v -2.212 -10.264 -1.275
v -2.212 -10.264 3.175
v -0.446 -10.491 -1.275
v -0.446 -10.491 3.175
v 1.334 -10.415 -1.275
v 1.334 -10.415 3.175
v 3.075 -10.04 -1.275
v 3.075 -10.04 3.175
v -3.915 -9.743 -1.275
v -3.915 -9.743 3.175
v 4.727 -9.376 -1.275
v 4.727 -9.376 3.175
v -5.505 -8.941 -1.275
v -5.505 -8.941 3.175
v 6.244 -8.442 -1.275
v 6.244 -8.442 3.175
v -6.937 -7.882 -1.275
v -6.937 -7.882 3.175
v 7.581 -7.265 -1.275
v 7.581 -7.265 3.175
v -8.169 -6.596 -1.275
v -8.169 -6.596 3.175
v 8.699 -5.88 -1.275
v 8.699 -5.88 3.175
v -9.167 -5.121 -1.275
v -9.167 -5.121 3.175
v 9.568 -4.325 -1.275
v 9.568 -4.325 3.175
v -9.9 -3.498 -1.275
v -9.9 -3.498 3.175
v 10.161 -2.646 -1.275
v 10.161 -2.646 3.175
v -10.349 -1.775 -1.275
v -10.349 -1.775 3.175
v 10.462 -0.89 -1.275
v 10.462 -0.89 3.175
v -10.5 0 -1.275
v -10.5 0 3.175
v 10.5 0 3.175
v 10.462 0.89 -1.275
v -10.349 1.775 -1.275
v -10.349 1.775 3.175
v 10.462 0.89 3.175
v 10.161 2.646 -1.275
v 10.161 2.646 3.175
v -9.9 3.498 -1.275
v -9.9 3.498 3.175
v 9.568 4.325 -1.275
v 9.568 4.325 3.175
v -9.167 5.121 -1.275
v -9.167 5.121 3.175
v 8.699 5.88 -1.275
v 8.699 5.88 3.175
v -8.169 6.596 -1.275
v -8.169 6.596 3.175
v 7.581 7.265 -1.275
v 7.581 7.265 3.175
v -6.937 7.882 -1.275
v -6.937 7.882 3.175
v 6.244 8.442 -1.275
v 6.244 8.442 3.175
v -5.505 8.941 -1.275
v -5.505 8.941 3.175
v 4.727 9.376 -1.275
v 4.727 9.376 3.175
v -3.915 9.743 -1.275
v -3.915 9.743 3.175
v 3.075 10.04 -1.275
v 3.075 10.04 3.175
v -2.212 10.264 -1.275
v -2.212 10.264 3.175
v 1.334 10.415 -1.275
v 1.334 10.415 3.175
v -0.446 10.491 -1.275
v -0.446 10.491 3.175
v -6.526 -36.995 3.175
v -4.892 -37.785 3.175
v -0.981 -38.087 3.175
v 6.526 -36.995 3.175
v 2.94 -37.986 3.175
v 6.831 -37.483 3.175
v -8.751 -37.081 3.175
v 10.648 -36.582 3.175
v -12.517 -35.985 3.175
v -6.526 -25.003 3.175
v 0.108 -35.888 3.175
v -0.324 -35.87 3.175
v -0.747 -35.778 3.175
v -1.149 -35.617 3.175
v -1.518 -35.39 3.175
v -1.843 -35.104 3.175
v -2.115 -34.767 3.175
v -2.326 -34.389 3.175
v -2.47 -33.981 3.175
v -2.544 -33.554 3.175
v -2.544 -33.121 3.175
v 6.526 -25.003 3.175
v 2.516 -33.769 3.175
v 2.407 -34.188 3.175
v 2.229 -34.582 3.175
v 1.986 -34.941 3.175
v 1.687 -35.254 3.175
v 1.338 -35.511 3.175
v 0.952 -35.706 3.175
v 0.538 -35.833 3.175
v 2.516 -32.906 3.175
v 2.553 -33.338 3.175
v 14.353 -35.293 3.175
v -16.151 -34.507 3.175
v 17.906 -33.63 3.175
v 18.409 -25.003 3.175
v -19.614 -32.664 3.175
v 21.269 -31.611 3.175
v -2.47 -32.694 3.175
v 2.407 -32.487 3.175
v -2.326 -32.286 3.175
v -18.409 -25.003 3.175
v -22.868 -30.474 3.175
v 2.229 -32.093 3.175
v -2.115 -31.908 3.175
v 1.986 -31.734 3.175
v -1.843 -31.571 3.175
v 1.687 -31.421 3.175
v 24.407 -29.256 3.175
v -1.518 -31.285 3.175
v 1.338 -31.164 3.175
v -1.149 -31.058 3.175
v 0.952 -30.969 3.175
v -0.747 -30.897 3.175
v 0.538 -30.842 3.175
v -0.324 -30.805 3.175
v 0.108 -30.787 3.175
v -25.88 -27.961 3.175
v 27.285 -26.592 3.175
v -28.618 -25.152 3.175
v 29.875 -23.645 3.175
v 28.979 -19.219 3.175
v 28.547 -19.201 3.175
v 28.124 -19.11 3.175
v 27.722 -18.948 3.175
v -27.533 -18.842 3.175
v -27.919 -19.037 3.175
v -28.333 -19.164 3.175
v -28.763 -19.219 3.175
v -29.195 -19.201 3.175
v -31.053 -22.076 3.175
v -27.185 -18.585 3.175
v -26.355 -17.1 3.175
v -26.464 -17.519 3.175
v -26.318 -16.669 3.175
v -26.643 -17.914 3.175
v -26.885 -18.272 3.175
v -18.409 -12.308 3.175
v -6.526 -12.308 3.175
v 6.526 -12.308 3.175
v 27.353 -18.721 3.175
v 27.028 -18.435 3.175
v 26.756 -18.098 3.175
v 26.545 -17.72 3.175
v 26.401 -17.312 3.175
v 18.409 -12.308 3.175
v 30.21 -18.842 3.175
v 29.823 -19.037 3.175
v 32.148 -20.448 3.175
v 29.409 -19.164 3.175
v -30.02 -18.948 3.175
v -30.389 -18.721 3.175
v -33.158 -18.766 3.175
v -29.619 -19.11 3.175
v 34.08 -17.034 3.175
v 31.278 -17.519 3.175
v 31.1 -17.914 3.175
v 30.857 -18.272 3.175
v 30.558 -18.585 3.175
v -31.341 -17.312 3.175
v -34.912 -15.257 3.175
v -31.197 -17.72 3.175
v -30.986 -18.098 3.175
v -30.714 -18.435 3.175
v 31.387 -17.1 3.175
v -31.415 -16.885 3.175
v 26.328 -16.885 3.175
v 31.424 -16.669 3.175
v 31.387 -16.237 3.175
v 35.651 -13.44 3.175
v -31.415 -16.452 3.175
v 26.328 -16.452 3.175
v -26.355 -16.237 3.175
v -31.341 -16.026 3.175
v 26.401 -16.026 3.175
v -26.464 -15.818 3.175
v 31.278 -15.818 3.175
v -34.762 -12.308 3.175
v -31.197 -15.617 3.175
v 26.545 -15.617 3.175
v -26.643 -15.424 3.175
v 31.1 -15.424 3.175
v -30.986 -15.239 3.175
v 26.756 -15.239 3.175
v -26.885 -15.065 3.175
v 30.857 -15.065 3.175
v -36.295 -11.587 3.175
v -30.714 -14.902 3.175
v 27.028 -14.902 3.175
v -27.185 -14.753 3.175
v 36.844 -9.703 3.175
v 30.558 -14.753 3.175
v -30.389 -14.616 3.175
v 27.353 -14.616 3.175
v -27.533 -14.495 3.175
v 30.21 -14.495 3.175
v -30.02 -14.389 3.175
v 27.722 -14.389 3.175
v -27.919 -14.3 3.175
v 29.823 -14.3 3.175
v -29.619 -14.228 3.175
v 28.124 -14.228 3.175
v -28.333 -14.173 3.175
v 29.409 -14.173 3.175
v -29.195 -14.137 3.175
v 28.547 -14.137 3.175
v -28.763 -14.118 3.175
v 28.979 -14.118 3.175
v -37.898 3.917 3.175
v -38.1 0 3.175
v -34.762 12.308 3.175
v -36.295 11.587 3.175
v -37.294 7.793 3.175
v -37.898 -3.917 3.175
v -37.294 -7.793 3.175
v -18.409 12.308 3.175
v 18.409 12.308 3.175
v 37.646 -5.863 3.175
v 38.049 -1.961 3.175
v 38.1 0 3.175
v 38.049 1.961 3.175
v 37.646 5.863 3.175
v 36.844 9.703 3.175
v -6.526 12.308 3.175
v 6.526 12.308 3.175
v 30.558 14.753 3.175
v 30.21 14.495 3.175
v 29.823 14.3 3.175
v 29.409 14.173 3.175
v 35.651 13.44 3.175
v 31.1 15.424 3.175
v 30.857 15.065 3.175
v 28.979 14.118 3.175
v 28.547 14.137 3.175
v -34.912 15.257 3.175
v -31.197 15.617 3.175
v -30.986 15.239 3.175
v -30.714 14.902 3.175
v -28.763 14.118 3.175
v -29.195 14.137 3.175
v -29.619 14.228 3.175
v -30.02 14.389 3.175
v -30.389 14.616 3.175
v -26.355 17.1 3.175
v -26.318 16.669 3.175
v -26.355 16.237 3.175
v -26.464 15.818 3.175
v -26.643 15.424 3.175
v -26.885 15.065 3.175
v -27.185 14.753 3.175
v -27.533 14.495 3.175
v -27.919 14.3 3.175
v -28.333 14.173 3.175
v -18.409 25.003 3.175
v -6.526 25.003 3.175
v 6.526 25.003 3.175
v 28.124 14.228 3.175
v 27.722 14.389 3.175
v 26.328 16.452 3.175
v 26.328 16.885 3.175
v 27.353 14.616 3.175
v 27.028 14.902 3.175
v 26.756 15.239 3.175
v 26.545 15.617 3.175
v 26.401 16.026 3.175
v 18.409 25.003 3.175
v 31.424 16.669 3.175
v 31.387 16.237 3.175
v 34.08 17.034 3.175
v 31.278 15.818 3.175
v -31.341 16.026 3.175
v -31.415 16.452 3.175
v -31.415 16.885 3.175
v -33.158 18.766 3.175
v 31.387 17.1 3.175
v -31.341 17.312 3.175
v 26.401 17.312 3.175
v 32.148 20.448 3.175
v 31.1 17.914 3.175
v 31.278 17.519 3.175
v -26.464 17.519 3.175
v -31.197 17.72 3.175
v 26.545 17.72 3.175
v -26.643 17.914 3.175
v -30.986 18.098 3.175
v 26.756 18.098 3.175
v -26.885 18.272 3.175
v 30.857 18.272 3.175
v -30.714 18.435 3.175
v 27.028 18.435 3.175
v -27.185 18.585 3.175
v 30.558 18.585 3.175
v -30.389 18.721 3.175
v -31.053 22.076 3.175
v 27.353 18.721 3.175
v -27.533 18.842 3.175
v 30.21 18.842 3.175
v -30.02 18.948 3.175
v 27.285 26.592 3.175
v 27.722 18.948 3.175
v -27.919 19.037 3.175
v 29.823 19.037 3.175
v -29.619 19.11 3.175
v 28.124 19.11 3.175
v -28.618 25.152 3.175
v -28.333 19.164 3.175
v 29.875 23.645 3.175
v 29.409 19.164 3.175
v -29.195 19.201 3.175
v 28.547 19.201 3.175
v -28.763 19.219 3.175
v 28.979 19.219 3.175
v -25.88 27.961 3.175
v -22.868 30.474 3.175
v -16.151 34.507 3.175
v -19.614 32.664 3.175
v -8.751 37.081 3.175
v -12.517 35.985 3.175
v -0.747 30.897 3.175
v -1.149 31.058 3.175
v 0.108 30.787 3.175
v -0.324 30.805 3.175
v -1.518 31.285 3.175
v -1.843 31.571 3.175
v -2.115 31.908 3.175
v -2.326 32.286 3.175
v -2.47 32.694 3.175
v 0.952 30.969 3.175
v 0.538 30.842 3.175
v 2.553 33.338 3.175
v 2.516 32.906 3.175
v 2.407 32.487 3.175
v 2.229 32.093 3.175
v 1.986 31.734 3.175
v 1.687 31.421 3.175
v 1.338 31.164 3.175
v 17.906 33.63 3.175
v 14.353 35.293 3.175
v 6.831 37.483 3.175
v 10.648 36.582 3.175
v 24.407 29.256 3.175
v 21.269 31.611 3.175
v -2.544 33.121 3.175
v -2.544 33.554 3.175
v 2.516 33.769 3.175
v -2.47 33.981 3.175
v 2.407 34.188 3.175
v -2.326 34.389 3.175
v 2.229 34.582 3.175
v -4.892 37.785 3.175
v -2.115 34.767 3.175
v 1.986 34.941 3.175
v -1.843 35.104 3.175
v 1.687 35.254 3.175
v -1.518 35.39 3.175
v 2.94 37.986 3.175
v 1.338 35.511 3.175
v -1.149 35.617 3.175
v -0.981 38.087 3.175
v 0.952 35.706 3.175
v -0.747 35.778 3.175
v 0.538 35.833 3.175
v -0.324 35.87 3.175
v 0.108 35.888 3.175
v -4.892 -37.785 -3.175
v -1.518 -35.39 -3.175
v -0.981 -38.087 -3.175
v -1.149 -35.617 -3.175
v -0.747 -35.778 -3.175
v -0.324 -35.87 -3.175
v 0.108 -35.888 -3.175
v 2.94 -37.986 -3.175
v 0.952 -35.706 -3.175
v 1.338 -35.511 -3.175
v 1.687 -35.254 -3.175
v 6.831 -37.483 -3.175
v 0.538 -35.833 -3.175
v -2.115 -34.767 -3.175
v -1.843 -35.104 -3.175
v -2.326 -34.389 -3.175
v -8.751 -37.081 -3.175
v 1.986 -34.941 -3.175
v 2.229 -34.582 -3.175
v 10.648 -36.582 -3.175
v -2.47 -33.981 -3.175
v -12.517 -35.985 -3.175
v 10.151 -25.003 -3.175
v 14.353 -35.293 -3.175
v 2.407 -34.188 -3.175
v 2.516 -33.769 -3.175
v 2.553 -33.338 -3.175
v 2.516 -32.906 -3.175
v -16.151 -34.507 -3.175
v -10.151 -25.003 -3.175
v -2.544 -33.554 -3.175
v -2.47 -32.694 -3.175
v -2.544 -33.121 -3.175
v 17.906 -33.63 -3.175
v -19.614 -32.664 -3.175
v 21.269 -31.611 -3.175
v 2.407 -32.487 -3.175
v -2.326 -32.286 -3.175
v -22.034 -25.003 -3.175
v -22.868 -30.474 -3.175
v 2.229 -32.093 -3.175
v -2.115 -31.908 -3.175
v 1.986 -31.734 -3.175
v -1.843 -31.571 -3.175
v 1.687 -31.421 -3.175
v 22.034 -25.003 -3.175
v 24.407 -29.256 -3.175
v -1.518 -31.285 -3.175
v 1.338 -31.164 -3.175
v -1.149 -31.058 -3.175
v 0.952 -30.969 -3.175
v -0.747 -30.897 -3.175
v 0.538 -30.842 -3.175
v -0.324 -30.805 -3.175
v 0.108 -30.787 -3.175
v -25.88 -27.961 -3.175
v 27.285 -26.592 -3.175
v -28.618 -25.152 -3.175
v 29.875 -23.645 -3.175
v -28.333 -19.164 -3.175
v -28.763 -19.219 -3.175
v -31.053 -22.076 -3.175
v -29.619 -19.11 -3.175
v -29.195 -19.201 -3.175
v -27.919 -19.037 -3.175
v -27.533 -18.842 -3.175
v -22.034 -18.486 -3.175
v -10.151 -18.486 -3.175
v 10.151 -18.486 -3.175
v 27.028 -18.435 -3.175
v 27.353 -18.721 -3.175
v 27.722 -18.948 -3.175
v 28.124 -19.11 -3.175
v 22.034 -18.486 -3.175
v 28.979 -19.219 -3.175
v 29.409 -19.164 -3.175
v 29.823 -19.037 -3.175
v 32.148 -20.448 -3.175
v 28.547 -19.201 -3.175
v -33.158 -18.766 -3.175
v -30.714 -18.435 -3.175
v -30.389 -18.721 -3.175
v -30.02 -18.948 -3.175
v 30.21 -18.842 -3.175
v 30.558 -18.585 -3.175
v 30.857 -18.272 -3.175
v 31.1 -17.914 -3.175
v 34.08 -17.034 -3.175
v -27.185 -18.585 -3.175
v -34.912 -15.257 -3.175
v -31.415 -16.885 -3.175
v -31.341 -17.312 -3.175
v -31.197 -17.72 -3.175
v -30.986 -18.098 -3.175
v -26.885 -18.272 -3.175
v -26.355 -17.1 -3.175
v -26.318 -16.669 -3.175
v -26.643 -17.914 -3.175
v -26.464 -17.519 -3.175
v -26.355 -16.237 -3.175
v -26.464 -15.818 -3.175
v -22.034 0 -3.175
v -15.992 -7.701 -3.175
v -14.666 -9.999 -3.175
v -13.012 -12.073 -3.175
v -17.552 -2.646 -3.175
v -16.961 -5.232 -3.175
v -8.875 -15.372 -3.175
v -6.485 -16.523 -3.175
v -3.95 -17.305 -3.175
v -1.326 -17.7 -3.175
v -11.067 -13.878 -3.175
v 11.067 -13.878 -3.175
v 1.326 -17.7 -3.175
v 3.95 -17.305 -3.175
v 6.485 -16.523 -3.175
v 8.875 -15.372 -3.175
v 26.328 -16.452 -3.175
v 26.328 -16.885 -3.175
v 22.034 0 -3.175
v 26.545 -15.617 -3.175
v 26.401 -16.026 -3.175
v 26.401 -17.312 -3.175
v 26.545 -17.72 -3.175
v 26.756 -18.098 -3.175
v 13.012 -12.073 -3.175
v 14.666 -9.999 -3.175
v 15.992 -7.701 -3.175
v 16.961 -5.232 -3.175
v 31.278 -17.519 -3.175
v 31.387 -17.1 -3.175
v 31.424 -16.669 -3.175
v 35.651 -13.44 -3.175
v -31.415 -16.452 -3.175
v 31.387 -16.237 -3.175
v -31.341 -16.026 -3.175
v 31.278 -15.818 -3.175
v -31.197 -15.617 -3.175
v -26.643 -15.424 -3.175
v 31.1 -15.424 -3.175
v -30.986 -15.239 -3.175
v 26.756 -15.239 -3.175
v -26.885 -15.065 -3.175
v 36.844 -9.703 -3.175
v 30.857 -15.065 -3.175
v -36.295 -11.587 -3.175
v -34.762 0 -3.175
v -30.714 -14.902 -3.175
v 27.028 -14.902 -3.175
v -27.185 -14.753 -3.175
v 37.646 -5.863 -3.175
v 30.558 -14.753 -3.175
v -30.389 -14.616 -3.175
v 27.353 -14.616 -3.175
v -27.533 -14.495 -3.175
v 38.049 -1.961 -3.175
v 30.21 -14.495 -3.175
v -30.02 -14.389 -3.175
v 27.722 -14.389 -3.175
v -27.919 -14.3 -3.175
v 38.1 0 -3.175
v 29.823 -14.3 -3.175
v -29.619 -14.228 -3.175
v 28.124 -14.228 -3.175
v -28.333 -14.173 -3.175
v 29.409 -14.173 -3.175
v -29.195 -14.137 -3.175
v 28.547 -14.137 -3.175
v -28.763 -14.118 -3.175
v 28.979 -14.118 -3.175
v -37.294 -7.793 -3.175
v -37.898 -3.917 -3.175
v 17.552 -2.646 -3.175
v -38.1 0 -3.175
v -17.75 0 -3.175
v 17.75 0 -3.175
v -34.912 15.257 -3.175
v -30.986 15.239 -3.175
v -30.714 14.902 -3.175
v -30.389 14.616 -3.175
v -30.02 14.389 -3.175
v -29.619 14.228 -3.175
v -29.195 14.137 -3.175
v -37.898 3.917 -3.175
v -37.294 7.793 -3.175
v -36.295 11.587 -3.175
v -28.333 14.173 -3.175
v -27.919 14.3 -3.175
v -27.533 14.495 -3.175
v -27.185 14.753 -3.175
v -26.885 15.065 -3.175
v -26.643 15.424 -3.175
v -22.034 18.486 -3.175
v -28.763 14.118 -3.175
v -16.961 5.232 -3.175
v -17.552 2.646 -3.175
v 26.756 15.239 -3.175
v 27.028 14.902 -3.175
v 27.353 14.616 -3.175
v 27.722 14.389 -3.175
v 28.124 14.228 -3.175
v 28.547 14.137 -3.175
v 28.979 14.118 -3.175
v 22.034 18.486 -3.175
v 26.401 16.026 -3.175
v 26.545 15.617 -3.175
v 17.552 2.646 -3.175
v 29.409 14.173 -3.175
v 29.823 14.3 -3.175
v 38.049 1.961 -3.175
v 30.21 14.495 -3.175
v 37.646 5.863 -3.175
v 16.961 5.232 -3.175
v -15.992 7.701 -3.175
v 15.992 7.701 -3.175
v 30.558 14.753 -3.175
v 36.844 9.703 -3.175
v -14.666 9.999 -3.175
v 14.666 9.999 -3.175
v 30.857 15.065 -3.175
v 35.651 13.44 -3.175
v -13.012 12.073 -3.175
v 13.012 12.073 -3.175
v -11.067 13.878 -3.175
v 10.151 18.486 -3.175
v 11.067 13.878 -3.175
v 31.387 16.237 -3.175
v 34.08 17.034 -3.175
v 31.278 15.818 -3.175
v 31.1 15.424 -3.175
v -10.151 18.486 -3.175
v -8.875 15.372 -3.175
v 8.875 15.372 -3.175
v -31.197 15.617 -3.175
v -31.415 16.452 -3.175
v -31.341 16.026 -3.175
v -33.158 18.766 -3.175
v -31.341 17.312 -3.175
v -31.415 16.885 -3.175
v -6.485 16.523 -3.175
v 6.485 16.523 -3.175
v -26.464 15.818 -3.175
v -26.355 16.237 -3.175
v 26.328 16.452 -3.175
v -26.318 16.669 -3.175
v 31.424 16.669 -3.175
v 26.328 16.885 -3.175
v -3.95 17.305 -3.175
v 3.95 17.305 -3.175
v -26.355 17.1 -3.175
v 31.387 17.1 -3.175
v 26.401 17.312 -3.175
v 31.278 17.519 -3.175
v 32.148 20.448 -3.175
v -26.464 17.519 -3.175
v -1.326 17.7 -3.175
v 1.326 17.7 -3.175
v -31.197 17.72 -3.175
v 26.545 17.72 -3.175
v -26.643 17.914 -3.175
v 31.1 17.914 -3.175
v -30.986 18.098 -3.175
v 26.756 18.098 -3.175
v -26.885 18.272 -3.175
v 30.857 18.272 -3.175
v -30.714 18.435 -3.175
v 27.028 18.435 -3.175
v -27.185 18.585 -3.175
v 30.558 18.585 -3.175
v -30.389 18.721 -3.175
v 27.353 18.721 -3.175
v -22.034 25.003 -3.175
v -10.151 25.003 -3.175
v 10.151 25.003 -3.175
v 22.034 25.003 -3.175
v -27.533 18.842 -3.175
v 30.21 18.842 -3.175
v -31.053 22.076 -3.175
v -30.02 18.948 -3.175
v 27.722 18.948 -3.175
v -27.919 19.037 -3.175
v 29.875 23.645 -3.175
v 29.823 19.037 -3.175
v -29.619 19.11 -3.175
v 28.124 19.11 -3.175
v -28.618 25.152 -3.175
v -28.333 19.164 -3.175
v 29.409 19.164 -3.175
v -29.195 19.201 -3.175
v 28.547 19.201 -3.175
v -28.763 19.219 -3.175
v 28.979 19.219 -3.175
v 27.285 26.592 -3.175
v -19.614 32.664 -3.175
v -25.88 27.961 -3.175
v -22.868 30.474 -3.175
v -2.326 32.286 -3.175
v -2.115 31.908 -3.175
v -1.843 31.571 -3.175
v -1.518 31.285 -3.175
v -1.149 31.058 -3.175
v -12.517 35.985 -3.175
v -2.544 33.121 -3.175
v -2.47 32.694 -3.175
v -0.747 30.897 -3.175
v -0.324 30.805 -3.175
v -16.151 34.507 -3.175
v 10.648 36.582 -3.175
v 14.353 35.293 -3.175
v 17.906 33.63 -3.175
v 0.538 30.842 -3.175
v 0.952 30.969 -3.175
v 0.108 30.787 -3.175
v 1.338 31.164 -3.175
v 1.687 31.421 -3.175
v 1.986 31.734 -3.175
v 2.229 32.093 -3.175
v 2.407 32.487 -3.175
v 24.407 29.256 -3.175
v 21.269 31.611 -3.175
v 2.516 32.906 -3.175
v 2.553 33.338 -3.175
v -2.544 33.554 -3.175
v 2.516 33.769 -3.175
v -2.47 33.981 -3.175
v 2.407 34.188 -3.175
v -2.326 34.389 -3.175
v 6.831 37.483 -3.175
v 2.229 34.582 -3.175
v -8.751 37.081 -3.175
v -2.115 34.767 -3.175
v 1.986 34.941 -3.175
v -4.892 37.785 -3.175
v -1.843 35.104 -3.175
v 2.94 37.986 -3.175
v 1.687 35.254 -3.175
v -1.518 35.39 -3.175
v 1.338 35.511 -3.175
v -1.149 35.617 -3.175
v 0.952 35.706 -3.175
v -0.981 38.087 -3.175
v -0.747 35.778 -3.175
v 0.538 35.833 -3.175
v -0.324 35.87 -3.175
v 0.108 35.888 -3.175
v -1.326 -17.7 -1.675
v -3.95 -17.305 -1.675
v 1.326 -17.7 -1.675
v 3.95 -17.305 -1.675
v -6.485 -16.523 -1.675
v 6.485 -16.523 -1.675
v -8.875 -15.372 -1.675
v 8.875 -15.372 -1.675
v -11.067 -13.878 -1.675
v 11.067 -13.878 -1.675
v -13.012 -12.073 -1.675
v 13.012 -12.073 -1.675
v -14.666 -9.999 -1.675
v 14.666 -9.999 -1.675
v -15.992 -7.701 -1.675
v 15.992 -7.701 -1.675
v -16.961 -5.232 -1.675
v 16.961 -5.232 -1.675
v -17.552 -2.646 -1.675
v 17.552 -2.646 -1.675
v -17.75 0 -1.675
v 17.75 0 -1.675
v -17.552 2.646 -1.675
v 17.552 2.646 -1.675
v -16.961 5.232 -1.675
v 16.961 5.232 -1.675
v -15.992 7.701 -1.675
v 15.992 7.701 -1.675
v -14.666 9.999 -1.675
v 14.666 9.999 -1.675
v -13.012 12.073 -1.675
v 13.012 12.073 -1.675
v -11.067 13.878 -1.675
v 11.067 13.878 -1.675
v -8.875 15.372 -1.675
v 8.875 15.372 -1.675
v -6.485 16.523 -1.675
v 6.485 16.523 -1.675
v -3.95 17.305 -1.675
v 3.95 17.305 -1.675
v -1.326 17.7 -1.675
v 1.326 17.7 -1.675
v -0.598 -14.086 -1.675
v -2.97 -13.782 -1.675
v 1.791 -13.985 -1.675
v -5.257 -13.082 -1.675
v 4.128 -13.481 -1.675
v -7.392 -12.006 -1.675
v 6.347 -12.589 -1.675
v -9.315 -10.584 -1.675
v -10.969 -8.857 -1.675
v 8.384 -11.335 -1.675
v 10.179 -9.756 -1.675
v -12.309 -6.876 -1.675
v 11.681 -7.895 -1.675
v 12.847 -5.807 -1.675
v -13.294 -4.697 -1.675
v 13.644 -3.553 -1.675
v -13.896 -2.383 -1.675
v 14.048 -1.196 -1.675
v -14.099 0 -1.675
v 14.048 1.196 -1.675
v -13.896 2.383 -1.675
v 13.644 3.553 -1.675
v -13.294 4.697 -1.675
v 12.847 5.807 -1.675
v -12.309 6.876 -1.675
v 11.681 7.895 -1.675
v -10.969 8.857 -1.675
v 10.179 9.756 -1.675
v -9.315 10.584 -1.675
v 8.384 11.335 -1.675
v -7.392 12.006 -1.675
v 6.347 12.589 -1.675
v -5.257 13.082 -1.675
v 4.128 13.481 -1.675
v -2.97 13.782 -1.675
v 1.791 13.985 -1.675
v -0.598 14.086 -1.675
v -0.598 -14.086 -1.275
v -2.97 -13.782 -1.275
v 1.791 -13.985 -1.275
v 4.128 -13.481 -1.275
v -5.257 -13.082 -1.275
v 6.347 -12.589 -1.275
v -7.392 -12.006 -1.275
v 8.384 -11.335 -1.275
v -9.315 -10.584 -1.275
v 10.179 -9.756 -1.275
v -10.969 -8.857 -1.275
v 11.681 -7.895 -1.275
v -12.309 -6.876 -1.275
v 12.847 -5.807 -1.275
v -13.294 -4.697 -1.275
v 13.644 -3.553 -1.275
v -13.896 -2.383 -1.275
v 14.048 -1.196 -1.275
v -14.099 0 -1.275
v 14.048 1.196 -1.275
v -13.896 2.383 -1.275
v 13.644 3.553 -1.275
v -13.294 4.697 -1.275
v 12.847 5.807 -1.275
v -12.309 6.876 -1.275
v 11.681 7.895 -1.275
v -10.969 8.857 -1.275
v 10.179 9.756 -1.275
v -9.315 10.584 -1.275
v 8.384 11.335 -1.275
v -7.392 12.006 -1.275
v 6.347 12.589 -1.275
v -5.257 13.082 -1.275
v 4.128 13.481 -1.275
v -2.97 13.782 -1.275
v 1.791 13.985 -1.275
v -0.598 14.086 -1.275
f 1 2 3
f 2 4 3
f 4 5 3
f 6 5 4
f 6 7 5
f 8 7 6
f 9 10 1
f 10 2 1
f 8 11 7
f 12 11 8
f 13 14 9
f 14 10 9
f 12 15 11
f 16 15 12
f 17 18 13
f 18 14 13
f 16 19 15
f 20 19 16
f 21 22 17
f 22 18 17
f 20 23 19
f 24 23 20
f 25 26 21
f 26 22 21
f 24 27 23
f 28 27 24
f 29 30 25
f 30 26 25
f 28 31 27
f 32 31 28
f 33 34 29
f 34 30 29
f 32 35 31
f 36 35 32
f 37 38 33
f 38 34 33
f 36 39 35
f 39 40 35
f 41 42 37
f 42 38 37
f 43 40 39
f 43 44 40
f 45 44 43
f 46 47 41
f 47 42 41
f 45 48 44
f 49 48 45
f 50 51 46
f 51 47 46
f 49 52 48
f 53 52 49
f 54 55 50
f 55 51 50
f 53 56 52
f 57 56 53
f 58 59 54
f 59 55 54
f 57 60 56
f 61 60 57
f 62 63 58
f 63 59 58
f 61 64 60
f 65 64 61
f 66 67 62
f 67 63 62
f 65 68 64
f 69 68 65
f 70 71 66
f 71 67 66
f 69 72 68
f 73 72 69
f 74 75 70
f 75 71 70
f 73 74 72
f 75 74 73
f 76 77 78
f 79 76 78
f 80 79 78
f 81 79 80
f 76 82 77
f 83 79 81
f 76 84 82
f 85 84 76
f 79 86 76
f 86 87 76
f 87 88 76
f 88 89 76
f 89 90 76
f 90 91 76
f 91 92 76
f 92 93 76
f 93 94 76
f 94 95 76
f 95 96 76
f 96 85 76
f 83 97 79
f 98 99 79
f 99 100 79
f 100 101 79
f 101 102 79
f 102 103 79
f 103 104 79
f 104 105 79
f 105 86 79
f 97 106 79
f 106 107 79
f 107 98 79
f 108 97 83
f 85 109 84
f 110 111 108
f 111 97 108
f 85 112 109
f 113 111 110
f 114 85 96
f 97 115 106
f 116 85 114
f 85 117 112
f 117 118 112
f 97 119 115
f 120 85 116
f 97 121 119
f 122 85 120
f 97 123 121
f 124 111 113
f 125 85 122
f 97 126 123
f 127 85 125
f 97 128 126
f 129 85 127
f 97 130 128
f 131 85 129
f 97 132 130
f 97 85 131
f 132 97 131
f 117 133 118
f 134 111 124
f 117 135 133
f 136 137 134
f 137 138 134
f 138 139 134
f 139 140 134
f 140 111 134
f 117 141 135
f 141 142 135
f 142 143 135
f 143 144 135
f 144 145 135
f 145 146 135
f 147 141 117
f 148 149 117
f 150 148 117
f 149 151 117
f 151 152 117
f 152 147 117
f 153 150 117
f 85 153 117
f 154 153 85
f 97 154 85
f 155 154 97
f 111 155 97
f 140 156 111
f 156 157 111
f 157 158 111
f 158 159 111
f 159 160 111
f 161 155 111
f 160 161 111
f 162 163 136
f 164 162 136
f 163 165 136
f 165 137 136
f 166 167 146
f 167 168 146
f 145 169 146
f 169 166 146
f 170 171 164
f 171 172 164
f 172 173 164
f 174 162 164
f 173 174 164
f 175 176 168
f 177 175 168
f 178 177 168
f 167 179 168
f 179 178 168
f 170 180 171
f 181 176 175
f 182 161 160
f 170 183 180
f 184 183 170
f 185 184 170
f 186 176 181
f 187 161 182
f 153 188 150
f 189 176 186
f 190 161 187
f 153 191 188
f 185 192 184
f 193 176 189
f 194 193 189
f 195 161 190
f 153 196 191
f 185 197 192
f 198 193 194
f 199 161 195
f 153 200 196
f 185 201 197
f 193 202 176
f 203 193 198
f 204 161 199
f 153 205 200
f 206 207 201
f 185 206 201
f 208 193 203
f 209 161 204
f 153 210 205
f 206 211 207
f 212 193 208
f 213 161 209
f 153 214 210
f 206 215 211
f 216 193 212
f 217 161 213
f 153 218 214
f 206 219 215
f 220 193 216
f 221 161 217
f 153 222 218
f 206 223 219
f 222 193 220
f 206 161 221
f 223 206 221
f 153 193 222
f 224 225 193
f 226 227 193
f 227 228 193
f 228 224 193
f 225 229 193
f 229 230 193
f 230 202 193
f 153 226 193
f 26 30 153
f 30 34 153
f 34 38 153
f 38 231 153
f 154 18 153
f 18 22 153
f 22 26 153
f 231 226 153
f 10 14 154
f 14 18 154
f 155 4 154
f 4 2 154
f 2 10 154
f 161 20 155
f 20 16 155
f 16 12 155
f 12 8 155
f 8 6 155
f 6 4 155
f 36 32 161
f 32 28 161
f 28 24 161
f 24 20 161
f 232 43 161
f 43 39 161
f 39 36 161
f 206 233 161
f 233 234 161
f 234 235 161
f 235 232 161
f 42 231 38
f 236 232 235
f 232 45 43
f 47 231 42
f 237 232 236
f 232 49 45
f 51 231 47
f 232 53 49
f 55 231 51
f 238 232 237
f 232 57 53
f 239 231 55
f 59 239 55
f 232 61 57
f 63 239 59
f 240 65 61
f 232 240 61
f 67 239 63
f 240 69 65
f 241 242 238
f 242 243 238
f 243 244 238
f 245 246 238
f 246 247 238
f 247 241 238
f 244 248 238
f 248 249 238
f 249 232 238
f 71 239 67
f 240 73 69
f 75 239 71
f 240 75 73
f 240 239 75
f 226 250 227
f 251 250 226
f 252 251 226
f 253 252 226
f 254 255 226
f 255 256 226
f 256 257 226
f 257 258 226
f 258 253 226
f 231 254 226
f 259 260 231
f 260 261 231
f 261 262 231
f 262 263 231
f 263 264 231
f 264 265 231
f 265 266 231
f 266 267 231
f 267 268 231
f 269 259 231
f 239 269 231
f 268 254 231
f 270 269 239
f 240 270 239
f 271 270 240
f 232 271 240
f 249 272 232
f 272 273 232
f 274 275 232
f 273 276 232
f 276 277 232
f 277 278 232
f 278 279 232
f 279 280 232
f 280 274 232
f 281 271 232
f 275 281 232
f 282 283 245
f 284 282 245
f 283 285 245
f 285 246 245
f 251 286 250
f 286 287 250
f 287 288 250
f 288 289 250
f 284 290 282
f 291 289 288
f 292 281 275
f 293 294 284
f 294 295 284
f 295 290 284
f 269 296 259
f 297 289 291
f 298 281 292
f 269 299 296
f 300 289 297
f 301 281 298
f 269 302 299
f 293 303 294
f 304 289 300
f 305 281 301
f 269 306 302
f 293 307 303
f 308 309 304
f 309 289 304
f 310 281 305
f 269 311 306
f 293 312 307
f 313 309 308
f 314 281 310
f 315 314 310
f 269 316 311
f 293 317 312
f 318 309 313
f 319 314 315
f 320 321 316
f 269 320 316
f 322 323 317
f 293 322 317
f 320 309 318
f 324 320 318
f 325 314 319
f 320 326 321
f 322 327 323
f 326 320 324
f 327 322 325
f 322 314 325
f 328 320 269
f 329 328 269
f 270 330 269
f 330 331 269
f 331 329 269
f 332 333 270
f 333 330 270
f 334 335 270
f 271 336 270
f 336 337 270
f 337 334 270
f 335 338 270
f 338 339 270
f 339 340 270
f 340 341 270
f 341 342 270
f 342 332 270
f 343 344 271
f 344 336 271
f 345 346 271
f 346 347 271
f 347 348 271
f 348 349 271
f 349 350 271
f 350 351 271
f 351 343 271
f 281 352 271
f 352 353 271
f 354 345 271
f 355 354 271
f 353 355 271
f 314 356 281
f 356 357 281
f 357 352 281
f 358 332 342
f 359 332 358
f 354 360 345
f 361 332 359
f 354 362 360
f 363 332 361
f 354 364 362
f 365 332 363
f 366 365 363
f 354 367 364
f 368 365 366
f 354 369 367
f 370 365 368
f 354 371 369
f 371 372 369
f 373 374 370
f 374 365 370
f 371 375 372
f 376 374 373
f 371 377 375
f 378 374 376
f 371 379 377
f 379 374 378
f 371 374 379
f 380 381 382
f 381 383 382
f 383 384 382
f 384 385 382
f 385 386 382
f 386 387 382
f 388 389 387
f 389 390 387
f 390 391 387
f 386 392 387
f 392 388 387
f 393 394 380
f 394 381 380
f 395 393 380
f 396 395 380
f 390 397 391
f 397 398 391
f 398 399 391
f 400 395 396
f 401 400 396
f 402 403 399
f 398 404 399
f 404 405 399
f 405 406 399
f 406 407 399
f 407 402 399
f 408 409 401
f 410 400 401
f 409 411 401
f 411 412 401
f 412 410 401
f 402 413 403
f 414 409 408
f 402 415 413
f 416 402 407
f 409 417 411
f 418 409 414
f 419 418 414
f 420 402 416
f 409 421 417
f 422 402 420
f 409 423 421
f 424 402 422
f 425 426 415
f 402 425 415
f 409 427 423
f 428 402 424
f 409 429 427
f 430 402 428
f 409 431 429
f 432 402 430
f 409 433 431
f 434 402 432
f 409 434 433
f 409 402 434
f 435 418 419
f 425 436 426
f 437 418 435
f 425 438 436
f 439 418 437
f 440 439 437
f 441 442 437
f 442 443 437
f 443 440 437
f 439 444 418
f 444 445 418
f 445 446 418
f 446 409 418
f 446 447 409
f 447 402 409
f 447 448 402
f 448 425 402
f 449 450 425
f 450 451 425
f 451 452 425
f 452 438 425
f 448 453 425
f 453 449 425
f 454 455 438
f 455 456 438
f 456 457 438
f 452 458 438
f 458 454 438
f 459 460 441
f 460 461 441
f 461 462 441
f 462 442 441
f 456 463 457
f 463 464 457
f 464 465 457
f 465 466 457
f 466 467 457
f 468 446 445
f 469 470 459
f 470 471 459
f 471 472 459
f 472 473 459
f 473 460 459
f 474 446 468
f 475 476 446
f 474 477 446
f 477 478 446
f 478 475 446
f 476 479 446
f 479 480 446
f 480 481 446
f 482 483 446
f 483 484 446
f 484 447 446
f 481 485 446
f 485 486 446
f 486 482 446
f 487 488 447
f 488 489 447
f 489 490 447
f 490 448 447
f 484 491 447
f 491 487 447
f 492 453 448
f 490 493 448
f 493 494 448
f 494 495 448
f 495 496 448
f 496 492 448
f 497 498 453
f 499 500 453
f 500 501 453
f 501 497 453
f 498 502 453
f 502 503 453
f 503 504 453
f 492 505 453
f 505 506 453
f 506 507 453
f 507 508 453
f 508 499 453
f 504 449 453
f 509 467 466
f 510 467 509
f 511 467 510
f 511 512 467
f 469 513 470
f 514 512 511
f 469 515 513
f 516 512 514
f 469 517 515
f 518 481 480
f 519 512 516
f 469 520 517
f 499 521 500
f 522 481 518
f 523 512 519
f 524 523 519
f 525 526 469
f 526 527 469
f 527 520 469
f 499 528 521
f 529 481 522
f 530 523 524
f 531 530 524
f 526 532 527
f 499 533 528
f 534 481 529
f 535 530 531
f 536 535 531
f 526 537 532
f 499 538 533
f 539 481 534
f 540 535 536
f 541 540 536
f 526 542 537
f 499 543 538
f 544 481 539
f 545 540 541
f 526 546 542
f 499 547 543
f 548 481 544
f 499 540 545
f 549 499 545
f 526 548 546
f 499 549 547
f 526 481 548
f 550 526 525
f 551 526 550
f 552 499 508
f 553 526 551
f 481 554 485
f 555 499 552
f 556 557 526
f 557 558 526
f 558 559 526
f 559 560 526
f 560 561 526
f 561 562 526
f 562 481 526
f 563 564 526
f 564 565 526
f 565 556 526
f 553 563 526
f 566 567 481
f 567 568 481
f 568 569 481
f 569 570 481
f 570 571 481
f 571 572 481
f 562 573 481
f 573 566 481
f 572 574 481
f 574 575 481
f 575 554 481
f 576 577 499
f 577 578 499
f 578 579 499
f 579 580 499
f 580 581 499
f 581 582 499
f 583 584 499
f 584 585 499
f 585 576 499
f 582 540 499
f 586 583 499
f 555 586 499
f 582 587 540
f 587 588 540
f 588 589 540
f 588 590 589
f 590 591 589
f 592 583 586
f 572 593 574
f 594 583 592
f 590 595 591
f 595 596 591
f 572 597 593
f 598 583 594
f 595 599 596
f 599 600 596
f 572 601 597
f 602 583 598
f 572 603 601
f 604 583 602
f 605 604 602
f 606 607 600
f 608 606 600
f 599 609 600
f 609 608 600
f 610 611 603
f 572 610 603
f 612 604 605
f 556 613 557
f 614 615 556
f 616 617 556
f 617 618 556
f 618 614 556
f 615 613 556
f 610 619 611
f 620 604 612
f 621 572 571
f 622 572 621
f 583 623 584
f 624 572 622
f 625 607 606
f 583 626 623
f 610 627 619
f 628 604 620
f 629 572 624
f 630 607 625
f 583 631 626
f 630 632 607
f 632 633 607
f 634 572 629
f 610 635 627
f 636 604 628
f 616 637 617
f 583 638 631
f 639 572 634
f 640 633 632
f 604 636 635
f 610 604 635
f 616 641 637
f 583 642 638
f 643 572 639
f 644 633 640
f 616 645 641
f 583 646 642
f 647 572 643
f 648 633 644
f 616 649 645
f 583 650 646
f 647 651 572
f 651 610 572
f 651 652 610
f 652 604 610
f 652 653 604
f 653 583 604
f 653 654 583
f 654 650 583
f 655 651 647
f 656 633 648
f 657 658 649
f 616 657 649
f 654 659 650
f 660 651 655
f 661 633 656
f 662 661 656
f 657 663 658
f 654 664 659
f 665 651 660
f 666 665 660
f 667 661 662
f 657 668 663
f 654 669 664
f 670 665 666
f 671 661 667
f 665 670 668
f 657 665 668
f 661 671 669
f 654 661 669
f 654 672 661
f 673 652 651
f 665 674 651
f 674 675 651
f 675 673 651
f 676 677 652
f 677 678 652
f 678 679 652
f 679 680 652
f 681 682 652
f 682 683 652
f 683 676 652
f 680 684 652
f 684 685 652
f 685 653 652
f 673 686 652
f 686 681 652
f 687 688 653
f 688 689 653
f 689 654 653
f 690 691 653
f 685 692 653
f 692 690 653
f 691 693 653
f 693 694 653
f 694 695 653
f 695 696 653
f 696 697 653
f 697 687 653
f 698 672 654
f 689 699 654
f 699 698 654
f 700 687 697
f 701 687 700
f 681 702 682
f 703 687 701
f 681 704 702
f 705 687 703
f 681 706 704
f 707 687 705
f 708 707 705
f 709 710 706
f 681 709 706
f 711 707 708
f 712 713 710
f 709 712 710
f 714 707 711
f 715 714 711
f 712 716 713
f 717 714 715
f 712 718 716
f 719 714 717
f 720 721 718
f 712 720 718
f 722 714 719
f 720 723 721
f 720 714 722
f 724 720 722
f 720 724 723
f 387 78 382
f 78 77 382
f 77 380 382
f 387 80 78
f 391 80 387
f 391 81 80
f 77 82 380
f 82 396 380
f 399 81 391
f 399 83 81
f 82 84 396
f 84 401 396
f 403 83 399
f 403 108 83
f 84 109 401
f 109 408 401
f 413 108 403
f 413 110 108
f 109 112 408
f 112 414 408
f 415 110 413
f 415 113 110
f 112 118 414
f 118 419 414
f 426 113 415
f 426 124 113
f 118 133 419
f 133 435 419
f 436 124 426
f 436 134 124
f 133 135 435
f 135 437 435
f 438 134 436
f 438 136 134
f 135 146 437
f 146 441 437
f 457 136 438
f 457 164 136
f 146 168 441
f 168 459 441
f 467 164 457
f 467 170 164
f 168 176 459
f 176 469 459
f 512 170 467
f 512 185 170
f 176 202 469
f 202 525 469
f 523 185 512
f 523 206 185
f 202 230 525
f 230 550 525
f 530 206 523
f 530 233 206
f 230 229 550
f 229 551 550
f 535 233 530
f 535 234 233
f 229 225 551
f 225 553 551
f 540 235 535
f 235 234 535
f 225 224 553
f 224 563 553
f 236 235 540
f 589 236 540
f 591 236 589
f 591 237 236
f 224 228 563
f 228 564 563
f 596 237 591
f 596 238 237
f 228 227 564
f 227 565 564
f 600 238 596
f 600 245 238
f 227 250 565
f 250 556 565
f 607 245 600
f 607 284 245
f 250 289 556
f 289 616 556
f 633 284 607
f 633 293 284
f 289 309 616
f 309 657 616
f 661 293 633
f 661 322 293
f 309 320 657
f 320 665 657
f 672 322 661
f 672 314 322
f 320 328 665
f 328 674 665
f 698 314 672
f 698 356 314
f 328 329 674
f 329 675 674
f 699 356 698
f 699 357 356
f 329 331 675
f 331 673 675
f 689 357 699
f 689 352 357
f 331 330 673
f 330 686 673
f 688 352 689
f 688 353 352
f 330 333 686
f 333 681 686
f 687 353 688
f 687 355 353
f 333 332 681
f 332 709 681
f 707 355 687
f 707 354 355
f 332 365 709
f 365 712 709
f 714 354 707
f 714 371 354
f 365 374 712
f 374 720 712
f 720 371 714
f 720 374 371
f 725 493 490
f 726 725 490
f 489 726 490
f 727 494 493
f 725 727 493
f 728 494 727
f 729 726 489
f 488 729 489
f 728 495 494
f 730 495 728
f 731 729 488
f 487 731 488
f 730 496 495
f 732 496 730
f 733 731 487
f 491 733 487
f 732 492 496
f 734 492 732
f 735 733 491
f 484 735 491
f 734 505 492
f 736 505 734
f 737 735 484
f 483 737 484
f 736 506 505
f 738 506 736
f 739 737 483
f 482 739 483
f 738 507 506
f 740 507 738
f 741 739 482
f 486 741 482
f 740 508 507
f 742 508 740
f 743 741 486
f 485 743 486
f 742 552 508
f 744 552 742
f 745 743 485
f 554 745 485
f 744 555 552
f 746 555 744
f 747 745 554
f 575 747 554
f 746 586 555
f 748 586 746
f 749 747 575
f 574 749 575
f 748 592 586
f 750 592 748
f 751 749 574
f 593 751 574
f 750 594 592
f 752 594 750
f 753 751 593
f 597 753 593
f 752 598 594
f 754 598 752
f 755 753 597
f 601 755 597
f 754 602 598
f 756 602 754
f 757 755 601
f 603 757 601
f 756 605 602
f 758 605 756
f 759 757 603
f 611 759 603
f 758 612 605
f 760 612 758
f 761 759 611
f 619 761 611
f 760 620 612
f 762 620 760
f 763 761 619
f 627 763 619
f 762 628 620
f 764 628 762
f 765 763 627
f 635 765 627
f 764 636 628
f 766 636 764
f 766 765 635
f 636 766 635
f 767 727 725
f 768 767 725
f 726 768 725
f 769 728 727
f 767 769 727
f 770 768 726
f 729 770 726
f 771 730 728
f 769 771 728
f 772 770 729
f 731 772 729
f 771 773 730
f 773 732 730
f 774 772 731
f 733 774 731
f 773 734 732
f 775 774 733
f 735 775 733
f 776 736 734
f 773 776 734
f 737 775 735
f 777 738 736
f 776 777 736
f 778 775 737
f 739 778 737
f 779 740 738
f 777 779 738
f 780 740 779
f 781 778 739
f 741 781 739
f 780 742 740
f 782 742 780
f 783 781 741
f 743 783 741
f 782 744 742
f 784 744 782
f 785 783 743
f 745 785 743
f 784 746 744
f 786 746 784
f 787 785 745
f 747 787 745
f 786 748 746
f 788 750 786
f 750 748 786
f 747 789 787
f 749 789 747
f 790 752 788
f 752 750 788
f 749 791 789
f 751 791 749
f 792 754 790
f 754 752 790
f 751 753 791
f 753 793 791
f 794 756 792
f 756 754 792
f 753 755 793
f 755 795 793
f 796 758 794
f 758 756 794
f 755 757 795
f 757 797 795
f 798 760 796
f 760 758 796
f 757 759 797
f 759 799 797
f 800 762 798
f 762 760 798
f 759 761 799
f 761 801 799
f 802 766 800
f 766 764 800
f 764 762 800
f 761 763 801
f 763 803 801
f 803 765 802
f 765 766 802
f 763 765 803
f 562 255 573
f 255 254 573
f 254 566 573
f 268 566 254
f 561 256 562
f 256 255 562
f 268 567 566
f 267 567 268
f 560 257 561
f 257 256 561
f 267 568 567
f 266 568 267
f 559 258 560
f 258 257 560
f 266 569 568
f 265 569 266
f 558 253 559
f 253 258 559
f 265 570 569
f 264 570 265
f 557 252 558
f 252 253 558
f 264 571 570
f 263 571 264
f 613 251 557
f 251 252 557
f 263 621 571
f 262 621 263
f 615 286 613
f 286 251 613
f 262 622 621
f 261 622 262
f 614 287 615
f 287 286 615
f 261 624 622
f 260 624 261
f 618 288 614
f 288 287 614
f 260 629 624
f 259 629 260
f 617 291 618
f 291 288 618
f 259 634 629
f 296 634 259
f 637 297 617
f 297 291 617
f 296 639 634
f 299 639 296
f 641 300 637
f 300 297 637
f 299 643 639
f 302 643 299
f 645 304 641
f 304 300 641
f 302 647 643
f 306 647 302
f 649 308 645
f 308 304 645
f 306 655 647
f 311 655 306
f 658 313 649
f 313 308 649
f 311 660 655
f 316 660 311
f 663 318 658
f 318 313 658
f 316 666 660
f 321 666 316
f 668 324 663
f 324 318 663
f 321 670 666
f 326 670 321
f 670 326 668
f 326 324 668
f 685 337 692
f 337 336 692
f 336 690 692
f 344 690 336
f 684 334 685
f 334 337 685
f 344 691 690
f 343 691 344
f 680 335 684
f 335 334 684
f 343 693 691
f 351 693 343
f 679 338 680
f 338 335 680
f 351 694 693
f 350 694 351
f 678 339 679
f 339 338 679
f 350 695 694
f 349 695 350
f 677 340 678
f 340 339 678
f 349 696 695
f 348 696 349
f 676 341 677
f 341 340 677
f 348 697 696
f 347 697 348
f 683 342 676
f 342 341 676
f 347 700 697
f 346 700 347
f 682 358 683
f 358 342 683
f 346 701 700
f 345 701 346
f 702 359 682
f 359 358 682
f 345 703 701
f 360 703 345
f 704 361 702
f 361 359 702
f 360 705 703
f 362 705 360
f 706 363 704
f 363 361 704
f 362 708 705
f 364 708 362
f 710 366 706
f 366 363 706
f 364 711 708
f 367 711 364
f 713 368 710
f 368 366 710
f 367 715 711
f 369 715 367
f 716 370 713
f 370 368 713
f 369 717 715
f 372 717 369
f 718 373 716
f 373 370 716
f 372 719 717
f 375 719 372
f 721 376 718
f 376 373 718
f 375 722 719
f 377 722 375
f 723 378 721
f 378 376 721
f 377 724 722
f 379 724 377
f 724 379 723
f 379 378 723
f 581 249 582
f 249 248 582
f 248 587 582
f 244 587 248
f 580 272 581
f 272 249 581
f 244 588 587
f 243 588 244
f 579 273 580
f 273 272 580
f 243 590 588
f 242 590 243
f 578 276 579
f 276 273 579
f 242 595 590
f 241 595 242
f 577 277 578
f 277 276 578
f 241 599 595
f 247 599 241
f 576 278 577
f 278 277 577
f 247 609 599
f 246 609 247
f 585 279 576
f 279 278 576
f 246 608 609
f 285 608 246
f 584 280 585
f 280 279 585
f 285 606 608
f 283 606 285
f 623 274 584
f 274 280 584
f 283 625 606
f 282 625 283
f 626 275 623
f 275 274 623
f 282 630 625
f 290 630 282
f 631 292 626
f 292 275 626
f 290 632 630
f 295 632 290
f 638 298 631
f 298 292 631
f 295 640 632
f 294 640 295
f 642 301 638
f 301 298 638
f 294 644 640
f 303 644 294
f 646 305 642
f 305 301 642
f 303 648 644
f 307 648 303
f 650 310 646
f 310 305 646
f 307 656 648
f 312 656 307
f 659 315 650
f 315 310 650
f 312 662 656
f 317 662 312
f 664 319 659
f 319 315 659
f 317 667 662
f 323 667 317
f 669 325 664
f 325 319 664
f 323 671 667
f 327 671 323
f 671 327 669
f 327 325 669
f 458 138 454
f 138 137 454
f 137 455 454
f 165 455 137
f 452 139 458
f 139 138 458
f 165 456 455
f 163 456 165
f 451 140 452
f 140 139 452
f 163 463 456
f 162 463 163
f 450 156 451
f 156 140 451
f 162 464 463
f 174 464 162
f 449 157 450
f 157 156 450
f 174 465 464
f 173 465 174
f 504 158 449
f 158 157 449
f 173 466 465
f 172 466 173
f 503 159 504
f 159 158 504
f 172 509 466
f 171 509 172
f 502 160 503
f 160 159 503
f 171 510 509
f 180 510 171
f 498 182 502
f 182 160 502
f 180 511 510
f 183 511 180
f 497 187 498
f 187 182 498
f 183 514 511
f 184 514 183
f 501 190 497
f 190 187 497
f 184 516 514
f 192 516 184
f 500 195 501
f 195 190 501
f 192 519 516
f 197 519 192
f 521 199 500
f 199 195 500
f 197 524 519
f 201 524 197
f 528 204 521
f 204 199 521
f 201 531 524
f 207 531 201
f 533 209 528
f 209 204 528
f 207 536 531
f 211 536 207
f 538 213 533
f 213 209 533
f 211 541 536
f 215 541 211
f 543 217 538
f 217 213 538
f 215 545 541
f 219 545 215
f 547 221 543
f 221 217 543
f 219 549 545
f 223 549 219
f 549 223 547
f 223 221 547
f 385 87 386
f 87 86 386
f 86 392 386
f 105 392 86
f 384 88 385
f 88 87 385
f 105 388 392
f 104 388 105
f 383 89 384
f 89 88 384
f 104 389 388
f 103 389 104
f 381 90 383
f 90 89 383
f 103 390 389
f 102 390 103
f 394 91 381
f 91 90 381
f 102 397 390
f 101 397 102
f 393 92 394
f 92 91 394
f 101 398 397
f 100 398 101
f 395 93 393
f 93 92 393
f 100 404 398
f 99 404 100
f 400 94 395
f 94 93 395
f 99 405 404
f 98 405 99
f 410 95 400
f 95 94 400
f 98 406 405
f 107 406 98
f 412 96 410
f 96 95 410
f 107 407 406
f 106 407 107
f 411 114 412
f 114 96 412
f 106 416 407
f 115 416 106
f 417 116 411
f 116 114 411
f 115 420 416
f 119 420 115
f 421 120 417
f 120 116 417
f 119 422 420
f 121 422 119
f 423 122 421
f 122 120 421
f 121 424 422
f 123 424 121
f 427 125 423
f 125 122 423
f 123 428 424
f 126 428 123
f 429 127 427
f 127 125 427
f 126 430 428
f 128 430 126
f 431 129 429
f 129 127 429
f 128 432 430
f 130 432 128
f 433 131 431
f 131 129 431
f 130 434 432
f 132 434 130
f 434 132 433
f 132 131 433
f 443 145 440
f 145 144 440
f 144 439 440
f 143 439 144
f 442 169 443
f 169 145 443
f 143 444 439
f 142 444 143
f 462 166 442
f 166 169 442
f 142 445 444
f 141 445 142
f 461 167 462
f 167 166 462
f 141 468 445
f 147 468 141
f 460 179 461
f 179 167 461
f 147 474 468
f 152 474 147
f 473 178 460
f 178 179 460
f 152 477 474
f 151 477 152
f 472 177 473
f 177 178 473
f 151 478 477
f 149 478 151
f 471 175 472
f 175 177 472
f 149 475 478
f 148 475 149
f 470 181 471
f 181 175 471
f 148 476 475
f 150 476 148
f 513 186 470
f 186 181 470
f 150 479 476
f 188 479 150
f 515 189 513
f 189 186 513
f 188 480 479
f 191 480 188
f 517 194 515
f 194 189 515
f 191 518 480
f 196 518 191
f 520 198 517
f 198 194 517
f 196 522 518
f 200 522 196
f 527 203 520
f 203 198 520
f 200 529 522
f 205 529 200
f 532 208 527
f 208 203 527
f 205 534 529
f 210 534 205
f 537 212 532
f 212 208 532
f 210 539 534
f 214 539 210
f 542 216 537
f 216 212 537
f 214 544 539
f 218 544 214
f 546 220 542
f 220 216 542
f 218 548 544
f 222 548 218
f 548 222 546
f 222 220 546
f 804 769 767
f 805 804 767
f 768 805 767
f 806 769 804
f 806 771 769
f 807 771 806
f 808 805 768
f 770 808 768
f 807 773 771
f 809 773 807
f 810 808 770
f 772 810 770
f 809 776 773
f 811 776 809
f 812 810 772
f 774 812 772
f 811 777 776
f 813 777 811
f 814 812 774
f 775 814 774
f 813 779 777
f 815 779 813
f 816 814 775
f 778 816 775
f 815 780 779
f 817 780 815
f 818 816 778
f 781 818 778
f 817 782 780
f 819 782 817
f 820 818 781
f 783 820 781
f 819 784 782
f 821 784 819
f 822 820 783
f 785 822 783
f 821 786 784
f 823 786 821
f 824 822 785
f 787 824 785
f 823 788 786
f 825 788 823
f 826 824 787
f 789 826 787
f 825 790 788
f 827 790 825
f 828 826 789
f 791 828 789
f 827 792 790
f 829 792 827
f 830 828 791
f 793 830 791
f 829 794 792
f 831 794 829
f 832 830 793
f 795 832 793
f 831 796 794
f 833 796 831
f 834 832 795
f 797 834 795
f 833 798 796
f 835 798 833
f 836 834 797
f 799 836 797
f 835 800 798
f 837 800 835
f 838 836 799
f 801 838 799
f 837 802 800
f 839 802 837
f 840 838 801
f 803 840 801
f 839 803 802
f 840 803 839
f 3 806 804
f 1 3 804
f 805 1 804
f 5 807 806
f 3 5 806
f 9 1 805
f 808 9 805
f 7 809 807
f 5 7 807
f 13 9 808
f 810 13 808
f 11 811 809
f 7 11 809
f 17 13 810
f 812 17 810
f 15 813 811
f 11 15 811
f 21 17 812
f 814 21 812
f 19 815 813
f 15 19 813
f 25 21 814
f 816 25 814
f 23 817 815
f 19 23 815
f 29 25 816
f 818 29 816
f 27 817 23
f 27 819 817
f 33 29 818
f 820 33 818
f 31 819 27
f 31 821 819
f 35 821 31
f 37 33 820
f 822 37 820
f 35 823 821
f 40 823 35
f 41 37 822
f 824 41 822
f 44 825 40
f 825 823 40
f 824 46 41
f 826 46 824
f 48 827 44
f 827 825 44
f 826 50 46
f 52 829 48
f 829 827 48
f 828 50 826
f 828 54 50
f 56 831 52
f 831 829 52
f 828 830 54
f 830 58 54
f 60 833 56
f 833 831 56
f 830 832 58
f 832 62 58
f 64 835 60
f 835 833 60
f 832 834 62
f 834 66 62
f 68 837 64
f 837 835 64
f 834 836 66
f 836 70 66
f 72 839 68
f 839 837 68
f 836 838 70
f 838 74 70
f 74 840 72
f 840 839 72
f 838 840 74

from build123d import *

# Parameters (mm, degrees)
SKETCH1_R           = 38.1
SKETCH1_R_2         = 10.5
BOSS_EXTRUDE1_DEPTH = 3.175
SKETCH6_R           = 17.75000006
CUT_EXTRUDE2_DEPTH  = 1.500000048
SKETCH8_R           = 2.5527
CUT_EXTRUDE3_DEPTH  = 7.35
SKETCH9_R           = 14.09889992
CUT_EXTRUDE4_DEPTH  = 0.4


with BuildPart() as part:
    # Sketch1 → Boss-Extrude1 (new body, symmetric)
    with BuildSketch(Plane.XY):
        Circle(SKETCH1_R)
        Circle(SKETCH1_R_2, mode=Mode.SUBTRACT)
    extrude(amount=BOSS_EXTRUDE1_DEPTH, both=True)

    # Sketch6 → Cut-Extrude2 (cut)
    with BuildSketch(Plane(origin=(0, 0, -3.175), x_dir=(-1, 0, 0), z_dir=(0, 0, -1))):
        Circle(SKETCH6_R)
    extrude(amount=-CUT_EXTRUDE2_DEPTH, mode=Mode.SUBTRACT)

    # Sketch8 → Cut-Extrude3 (cut, through all)
    with BuildSketch(Plane.XY.offset(3.175)):
        with Locations((-28.871121899, 16.66875)):
            Circle(SKETCH8_R)
        with Locations((0, 33.3375)):
            Circle(SKETCH8_R)
        with Locations((28.871121899, 16.66875)):
            Circle(SKETCH8_R)
        with Locations((28.871121899, -16.66875)):
            Circle(SKETCH8_R)
        with Locations((0, -33.3375)):
            Circle(SKETCH8_R)
        with Locations((-28.871121899, -16.66875)):
            Circle(SKETCH8_R)
    extrude(amount=-CUT_EXTRUDE3_DEPTH, mode=Mode.SUBTRACT)

    # Sketch9 → Cut-Extrude4 (cut)
    with BuildSketch(Plane(origin=(0, 0, -1.674999952), x_dir=(-1, 0, 0), z_dir=(0, 0, -1))):
        Circle(SKETCH9_R)
    extrude(amount=-CUT_EXTRUDE4_DEPTH, mode=Mode.SUBTRACT)


solid = part.part
